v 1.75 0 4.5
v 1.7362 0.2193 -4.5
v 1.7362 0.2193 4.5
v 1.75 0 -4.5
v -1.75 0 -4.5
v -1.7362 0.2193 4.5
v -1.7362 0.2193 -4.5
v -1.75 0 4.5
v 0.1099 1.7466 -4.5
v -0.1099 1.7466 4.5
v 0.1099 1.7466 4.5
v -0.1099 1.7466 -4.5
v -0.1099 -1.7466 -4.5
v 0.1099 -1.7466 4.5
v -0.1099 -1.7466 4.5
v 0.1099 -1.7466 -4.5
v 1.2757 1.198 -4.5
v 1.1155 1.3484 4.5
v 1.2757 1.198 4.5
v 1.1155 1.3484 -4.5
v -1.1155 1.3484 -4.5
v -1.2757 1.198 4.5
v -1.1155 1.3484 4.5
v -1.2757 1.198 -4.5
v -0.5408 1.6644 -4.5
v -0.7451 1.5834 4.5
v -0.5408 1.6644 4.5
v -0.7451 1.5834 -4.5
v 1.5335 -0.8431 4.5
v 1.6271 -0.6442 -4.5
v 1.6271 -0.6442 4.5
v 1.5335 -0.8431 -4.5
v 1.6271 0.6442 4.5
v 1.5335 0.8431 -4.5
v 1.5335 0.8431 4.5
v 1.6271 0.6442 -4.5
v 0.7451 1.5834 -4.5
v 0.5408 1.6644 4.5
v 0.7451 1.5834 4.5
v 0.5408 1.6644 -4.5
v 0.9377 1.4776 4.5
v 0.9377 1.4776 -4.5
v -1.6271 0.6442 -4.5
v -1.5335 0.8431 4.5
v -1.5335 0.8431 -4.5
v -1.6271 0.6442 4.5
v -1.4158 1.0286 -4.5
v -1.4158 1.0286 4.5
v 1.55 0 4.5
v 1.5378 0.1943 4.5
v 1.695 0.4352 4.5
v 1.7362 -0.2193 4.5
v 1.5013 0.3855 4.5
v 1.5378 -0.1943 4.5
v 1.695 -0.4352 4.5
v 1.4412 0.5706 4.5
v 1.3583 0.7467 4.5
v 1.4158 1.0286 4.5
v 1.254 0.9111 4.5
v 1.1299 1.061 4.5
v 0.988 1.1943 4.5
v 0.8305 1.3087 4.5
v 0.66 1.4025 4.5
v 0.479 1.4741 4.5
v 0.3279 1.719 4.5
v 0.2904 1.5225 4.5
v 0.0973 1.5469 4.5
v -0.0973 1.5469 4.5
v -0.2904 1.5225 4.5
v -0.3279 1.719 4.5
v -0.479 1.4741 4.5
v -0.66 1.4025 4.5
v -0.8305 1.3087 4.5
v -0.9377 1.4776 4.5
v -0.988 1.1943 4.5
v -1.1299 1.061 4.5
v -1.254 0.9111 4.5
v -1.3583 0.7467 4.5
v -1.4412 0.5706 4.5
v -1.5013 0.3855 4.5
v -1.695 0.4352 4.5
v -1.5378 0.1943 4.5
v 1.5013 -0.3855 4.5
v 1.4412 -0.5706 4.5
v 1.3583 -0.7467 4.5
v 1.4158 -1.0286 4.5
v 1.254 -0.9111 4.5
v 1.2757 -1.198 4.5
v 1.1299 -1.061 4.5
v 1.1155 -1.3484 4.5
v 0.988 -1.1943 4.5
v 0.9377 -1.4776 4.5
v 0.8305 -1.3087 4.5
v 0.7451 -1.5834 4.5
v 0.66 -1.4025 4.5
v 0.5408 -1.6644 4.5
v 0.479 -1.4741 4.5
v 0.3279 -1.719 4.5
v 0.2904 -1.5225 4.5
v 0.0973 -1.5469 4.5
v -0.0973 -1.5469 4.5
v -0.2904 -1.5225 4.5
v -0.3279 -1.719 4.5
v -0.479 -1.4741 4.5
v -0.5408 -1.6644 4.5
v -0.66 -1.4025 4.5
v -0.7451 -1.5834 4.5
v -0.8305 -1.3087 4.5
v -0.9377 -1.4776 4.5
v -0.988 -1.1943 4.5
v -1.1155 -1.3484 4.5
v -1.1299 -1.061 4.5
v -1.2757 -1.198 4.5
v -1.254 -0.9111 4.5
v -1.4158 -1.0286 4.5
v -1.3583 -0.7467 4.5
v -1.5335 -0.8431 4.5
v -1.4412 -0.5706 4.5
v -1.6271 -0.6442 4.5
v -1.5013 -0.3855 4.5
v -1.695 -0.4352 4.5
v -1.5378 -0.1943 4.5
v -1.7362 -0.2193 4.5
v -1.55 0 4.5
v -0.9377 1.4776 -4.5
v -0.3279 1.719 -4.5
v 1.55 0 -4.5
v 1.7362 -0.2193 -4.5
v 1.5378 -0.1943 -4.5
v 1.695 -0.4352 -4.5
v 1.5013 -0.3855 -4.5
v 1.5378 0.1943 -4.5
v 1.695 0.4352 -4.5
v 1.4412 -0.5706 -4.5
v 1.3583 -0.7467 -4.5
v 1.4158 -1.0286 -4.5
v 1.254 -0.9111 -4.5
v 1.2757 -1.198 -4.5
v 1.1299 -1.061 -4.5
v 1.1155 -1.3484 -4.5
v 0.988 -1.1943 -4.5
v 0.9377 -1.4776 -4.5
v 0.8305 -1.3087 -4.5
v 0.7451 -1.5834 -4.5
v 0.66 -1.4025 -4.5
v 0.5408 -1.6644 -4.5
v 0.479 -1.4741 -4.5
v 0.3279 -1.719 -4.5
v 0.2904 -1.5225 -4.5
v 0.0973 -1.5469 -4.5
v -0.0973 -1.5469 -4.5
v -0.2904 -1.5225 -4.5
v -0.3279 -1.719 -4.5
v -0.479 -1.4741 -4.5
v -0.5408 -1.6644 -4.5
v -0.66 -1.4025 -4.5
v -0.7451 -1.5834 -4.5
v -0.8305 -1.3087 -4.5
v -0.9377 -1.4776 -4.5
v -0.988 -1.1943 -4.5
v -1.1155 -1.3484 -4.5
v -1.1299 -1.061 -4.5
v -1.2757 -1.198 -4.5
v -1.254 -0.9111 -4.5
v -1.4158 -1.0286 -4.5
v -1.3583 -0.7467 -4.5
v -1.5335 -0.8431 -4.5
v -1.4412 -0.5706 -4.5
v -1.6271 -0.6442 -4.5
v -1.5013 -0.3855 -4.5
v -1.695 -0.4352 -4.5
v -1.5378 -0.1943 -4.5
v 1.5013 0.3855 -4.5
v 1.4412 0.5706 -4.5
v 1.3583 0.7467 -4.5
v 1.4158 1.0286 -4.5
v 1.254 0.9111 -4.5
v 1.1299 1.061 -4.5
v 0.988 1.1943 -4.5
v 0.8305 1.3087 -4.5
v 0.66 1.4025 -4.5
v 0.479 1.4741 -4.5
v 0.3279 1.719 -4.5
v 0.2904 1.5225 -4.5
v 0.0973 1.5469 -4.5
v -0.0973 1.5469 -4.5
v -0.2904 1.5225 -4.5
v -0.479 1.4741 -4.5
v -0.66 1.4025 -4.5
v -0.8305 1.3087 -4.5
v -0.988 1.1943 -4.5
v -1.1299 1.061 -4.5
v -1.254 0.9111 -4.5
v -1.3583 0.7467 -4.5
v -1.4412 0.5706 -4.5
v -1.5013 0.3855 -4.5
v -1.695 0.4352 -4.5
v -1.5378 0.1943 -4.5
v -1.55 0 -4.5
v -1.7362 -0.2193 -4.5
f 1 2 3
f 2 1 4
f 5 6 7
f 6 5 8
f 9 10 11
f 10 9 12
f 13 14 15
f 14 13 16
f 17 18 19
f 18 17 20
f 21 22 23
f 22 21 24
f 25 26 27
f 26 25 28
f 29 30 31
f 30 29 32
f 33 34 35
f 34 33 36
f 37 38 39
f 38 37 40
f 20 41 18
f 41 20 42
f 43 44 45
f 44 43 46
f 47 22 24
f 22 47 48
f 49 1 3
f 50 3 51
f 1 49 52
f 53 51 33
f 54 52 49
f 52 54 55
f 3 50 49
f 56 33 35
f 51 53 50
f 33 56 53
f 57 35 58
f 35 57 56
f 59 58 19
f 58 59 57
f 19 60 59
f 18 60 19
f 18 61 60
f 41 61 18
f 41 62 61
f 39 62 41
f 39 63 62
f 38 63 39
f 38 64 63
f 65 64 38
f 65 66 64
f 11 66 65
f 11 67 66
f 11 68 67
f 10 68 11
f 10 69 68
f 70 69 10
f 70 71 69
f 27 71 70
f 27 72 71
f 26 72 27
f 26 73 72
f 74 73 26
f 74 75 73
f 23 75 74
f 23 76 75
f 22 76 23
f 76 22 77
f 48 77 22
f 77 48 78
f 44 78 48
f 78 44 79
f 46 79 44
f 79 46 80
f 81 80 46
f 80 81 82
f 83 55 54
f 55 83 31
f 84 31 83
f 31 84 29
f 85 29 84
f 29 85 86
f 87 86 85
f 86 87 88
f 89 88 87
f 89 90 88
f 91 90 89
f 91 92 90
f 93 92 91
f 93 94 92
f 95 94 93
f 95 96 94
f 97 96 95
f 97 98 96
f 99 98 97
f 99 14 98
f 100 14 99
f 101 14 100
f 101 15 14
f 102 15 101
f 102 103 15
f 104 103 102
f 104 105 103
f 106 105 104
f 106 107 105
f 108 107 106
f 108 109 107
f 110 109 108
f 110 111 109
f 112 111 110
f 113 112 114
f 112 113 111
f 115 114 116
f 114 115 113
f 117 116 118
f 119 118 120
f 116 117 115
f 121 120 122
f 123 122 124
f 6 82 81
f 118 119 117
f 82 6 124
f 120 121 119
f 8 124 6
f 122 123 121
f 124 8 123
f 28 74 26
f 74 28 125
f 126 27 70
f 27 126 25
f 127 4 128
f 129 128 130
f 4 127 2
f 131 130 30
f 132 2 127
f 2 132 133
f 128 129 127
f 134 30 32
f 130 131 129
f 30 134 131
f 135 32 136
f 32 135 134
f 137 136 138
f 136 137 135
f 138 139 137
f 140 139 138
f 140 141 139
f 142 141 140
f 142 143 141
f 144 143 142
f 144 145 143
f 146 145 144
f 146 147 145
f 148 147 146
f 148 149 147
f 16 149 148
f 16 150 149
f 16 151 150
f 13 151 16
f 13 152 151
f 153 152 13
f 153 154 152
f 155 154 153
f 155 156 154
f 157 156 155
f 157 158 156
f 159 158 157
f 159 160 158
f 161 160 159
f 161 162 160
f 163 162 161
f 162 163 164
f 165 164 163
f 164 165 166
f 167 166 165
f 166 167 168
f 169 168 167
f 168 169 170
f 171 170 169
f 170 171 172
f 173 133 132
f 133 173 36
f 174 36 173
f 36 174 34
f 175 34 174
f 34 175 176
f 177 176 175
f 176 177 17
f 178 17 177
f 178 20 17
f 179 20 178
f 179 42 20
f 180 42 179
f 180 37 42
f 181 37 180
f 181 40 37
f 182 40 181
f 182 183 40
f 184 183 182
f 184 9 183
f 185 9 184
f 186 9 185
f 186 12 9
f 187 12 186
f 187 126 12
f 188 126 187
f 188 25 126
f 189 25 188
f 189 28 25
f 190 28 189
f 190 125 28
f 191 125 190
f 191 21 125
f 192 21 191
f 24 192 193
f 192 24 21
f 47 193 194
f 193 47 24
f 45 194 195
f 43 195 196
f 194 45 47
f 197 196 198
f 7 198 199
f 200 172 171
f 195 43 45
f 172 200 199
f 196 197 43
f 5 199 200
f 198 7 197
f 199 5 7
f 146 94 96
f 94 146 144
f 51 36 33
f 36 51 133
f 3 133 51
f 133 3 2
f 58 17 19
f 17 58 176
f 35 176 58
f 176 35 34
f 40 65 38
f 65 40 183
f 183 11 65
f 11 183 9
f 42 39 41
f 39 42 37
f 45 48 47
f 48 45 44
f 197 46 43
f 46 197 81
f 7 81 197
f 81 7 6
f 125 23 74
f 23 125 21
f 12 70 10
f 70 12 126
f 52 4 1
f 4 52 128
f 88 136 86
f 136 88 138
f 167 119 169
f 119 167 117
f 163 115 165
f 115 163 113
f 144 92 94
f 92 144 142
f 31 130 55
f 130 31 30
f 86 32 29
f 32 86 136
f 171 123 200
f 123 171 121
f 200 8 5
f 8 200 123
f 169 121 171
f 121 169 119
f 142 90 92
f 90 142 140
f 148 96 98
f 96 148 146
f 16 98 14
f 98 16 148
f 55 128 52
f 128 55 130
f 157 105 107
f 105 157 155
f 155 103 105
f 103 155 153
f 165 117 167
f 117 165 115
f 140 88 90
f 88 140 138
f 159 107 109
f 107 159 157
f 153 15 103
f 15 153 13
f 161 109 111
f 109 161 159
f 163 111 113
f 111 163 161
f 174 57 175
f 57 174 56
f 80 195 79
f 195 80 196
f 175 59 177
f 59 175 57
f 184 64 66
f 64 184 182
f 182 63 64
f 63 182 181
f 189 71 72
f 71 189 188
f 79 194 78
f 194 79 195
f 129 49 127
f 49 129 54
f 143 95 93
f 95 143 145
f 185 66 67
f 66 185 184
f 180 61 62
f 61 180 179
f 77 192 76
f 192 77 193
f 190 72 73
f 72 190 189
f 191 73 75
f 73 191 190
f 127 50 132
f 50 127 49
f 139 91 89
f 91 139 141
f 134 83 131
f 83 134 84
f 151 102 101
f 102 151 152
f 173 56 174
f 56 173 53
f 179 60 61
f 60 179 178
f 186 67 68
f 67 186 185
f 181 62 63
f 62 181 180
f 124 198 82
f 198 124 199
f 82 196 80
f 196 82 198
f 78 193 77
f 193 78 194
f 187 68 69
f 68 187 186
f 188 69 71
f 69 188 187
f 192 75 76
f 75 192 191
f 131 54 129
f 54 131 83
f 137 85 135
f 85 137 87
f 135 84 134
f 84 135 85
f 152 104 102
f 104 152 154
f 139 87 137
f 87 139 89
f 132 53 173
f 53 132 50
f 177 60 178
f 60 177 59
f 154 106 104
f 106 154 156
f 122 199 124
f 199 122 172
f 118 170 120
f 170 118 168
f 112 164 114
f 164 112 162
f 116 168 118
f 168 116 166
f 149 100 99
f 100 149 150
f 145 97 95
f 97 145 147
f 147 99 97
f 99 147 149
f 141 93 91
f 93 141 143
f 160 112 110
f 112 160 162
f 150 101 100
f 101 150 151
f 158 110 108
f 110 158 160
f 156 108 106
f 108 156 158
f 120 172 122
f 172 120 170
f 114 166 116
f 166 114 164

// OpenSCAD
$fn = 50;


difference() {
	union() {
		translate(v = [0, 0, -4.5000000000]) {
			cylinder(h = 9, r = 1.7500000000);
		}
	}
	union() {
		translate(v = [0, 0, -100.0000000000]) {
			cylinder(h = 200, r = 1.5500000000);
		}
	}
}
